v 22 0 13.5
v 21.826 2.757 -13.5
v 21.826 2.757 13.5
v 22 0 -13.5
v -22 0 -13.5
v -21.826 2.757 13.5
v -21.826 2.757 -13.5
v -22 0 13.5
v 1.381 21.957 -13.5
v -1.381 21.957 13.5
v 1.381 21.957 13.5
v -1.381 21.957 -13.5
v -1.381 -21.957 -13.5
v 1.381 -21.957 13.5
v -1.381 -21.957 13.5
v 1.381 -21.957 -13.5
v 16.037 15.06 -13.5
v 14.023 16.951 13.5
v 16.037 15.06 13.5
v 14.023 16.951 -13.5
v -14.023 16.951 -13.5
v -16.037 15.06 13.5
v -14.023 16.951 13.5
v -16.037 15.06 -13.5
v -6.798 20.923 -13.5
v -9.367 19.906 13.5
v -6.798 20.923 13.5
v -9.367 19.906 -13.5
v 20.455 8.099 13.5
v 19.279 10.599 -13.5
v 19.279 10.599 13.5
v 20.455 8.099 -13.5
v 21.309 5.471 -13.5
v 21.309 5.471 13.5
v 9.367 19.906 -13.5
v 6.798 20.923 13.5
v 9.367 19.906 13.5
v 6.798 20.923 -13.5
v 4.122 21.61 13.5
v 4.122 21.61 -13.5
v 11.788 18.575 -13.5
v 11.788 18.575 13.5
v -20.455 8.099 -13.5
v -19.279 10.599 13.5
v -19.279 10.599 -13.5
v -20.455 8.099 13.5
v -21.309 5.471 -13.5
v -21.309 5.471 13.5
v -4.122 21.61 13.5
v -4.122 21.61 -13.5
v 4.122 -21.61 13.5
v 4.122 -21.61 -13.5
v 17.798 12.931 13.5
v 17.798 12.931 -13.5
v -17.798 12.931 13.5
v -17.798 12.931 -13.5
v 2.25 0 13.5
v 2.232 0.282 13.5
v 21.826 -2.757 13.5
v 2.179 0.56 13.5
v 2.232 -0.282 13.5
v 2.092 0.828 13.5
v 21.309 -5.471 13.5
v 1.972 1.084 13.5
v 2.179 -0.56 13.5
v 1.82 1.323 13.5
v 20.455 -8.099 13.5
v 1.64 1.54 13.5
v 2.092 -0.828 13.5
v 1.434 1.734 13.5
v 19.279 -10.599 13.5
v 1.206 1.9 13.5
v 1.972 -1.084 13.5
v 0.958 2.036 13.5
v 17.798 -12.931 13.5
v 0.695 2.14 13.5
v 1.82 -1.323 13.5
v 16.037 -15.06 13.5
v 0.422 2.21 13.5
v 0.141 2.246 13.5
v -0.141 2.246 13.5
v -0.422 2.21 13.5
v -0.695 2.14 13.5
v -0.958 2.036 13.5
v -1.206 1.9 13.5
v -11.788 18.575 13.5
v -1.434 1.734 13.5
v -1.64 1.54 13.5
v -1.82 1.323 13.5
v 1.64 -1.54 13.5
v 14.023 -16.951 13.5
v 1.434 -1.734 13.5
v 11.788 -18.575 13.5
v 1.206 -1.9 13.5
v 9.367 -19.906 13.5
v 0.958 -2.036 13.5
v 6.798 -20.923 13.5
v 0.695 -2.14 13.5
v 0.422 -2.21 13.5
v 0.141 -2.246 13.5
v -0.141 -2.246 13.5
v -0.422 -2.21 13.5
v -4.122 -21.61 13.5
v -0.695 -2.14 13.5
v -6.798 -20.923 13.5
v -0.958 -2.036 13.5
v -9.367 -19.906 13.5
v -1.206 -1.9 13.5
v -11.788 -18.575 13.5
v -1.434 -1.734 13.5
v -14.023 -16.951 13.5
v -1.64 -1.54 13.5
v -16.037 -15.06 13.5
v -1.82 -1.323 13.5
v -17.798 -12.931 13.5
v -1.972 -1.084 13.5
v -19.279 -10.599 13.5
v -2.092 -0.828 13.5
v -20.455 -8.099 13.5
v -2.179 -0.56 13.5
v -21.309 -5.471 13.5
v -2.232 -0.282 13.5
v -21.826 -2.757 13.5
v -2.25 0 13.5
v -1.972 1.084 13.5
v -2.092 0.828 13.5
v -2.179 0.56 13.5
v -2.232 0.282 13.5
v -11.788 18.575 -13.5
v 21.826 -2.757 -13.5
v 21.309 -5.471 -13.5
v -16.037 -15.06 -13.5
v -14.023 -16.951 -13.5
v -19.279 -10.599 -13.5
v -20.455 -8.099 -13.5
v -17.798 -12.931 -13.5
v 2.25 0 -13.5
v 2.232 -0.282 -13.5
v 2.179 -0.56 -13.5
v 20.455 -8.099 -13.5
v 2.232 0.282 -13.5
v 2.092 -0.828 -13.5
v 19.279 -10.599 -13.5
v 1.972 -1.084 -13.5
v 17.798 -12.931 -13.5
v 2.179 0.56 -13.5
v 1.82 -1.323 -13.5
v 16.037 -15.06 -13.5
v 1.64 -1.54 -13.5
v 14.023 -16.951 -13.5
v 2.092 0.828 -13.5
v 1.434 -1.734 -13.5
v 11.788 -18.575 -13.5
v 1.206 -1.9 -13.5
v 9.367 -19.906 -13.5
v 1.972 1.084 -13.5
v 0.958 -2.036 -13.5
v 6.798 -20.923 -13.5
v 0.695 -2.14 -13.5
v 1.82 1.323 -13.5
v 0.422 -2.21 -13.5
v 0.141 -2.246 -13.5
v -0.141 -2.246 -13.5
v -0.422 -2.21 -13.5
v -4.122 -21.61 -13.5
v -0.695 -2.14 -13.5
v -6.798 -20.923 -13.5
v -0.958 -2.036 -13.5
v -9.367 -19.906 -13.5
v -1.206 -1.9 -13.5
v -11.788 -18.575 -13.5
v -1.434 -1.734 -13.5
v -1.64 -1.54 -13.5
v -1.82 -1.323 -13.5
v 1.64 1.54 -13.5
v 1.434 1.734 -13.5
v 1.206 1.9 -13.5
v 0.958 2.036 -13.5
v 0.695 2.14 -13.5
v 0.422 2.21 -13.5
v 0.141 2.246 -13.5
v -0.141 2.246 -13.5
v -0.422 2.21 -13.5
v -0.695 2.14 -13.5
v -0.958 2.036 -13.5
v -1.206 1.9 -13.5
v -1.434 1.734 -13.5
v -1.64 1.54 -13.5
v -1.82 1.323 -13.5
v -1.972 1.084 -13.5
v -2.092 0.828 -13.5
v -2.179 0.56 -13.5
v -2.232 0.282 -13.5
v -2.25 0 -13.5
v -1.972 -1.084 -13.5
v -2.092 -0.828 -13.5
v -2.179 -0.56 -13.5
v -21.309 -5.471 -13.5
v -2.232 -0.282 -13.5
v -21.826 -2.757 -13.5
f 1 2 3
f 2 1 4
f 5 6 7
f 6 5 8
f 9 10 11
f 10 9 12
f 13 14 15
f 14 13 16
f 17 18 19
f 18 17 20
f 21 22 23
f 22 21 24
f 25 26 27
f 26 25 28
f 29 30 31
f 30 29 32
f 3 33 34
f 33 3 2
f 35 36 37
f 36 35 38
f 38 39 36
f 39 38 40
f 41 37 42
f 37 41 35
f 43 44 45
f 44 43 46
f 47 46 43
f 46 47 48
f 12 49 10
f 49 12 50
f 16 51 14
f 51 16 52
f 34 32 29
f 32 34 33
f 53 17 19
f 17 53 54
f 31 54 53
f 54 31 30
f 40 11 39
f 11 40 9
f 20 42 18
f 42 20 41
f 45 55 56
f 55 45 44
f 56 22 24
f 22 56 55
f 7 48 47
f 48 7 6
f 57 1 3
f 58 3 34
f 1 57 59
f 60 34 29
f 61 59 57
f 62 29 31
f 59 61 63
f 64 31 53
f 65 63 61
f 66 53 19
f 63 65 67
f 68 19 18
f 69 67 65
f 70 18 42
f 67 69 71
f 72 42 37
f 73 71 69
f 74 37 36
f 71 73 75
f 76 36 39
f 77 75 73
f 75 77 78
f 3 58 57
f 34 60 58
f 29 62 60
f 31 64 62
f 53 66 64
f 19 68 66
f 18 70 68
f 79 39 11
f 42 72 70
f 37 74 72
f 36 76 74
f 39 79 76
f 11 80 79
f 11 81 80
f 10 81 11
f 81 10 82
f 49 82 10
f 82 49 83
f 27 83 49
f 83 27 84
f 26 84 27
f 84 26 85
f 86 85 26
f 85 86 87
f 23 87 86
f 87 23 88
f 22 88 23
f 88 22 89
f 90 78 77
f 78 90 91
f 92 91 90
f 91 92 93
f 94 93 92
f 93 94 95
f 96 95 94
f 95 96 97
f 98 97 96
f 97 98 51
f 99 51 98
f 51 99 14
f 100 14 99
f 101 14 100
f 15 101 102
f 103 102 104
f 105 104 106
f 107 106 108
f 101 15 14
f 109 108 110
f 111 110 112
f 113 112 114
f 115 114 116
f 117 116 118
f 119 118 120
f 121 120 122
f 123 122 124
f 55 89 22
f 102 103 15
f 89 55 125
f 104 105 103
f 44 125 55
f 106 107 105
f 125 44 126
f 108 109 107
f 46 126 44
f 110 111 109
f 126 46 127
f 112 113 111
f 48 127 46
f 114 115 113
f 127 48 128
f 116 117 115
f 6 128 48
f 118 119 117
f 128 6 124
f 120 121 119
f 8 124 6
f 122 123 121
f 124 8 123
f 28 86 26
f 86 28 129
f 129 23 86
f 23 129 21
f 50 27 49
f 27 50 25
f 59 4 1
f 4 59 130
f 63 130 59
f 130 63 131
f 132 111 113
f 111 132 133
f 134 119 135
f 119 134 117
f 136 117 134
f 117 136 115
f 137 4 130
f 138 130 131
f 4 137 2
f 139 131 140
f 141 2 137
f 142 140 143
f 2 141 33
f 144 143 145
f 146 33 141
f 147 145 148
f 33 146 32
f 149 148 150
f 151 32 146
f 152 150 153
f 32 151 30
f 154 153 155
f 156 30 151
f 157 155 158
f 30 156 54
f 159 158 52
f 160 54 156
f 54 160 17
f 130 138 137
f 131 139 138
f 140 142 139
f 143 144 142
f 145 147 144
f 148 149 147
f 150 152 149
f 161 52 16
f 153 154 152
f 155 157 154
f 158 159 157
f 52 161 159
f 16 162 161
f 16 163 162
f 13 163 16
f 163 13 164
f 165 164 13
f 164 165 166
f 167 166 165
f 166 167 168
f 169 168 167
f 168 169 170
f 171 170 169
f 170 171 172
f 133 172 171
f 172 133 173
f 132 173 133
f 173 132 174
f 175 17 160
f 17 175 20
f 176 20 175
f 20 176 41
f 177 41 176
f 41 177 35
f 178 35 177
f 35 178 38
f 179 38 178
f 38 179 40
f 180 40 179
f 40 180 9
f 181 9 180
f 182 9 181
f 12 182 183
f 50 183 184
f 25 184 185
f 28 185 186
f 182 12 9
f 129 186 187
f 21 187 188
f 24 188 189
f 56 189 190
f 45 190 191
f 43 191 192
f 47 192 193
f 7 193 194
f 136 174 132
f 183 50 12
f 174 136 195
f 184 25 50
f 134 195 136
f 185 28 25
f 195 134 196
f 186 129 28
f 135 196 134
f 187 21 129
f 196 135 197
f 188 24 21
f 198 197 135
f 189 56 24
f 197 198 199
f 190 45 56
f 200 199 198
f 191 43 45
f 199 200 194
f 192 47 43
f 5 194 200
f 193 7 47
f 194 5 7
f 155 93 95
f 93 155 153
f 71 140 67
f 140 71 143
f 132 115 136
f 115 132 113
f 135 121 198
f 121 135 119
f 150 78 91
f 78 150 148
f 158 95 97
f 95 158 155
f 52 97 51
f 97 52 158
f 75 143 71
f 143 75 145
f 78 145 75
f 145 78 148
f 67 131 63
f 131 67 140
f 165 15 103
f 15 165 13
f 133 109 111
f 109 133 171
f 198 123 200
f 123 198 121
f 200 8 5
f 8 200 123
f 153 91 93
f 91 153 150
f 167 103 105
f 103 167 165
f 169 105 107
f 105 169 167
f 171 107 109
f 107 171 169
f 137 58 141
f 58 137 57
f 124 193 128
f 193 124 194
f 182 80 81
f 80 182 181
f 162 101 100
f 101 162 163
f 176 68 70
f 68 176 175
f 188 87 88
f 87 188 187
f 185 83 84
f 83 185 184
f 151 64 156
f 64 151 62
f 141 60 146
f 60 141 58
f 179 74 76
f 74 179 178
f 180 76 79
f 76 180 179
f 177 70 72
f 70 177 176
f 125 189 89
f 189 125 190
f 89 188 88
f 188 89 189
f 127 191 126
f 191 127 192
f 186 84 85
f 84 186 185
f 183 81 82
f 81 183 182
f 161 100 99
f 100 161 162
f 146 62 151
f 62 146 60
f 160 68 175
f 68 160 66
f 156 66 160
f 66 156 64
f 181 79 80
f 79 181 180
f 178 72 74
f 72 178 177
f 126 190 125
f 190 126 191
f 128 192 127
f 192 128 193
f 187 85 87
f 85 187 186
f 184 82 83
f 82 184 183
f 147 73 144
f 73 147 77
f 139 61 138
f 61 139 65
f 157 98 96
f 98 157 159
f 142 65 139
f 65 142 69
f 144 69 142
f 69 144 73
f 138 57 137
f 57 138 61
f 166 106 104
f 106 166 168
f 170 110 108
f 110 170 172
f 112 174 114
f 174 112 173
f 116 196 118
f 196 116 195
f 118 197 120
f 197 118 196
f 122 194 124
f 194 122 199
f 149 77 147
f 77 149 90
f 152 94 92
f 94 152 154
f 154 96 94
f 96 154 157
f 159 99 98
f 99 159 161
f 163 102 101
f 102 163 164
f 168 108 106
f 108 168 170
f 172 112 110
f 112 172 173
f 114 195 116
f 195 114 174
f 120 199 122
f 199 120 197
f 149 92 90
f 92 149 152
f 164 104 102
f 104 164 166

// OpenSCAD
$fn = 50;


difference() {
	union() {
		translate(v = [0, 0, -13.5000000000]) {
			cylinder(h = 27, r = 22.0000000000);
		}
	}
	union() {
		translate(v = [0, 0, -100.0000000000]) {
			cylinder(h = 200, r = 2.2500000000);
		}
	}
}
